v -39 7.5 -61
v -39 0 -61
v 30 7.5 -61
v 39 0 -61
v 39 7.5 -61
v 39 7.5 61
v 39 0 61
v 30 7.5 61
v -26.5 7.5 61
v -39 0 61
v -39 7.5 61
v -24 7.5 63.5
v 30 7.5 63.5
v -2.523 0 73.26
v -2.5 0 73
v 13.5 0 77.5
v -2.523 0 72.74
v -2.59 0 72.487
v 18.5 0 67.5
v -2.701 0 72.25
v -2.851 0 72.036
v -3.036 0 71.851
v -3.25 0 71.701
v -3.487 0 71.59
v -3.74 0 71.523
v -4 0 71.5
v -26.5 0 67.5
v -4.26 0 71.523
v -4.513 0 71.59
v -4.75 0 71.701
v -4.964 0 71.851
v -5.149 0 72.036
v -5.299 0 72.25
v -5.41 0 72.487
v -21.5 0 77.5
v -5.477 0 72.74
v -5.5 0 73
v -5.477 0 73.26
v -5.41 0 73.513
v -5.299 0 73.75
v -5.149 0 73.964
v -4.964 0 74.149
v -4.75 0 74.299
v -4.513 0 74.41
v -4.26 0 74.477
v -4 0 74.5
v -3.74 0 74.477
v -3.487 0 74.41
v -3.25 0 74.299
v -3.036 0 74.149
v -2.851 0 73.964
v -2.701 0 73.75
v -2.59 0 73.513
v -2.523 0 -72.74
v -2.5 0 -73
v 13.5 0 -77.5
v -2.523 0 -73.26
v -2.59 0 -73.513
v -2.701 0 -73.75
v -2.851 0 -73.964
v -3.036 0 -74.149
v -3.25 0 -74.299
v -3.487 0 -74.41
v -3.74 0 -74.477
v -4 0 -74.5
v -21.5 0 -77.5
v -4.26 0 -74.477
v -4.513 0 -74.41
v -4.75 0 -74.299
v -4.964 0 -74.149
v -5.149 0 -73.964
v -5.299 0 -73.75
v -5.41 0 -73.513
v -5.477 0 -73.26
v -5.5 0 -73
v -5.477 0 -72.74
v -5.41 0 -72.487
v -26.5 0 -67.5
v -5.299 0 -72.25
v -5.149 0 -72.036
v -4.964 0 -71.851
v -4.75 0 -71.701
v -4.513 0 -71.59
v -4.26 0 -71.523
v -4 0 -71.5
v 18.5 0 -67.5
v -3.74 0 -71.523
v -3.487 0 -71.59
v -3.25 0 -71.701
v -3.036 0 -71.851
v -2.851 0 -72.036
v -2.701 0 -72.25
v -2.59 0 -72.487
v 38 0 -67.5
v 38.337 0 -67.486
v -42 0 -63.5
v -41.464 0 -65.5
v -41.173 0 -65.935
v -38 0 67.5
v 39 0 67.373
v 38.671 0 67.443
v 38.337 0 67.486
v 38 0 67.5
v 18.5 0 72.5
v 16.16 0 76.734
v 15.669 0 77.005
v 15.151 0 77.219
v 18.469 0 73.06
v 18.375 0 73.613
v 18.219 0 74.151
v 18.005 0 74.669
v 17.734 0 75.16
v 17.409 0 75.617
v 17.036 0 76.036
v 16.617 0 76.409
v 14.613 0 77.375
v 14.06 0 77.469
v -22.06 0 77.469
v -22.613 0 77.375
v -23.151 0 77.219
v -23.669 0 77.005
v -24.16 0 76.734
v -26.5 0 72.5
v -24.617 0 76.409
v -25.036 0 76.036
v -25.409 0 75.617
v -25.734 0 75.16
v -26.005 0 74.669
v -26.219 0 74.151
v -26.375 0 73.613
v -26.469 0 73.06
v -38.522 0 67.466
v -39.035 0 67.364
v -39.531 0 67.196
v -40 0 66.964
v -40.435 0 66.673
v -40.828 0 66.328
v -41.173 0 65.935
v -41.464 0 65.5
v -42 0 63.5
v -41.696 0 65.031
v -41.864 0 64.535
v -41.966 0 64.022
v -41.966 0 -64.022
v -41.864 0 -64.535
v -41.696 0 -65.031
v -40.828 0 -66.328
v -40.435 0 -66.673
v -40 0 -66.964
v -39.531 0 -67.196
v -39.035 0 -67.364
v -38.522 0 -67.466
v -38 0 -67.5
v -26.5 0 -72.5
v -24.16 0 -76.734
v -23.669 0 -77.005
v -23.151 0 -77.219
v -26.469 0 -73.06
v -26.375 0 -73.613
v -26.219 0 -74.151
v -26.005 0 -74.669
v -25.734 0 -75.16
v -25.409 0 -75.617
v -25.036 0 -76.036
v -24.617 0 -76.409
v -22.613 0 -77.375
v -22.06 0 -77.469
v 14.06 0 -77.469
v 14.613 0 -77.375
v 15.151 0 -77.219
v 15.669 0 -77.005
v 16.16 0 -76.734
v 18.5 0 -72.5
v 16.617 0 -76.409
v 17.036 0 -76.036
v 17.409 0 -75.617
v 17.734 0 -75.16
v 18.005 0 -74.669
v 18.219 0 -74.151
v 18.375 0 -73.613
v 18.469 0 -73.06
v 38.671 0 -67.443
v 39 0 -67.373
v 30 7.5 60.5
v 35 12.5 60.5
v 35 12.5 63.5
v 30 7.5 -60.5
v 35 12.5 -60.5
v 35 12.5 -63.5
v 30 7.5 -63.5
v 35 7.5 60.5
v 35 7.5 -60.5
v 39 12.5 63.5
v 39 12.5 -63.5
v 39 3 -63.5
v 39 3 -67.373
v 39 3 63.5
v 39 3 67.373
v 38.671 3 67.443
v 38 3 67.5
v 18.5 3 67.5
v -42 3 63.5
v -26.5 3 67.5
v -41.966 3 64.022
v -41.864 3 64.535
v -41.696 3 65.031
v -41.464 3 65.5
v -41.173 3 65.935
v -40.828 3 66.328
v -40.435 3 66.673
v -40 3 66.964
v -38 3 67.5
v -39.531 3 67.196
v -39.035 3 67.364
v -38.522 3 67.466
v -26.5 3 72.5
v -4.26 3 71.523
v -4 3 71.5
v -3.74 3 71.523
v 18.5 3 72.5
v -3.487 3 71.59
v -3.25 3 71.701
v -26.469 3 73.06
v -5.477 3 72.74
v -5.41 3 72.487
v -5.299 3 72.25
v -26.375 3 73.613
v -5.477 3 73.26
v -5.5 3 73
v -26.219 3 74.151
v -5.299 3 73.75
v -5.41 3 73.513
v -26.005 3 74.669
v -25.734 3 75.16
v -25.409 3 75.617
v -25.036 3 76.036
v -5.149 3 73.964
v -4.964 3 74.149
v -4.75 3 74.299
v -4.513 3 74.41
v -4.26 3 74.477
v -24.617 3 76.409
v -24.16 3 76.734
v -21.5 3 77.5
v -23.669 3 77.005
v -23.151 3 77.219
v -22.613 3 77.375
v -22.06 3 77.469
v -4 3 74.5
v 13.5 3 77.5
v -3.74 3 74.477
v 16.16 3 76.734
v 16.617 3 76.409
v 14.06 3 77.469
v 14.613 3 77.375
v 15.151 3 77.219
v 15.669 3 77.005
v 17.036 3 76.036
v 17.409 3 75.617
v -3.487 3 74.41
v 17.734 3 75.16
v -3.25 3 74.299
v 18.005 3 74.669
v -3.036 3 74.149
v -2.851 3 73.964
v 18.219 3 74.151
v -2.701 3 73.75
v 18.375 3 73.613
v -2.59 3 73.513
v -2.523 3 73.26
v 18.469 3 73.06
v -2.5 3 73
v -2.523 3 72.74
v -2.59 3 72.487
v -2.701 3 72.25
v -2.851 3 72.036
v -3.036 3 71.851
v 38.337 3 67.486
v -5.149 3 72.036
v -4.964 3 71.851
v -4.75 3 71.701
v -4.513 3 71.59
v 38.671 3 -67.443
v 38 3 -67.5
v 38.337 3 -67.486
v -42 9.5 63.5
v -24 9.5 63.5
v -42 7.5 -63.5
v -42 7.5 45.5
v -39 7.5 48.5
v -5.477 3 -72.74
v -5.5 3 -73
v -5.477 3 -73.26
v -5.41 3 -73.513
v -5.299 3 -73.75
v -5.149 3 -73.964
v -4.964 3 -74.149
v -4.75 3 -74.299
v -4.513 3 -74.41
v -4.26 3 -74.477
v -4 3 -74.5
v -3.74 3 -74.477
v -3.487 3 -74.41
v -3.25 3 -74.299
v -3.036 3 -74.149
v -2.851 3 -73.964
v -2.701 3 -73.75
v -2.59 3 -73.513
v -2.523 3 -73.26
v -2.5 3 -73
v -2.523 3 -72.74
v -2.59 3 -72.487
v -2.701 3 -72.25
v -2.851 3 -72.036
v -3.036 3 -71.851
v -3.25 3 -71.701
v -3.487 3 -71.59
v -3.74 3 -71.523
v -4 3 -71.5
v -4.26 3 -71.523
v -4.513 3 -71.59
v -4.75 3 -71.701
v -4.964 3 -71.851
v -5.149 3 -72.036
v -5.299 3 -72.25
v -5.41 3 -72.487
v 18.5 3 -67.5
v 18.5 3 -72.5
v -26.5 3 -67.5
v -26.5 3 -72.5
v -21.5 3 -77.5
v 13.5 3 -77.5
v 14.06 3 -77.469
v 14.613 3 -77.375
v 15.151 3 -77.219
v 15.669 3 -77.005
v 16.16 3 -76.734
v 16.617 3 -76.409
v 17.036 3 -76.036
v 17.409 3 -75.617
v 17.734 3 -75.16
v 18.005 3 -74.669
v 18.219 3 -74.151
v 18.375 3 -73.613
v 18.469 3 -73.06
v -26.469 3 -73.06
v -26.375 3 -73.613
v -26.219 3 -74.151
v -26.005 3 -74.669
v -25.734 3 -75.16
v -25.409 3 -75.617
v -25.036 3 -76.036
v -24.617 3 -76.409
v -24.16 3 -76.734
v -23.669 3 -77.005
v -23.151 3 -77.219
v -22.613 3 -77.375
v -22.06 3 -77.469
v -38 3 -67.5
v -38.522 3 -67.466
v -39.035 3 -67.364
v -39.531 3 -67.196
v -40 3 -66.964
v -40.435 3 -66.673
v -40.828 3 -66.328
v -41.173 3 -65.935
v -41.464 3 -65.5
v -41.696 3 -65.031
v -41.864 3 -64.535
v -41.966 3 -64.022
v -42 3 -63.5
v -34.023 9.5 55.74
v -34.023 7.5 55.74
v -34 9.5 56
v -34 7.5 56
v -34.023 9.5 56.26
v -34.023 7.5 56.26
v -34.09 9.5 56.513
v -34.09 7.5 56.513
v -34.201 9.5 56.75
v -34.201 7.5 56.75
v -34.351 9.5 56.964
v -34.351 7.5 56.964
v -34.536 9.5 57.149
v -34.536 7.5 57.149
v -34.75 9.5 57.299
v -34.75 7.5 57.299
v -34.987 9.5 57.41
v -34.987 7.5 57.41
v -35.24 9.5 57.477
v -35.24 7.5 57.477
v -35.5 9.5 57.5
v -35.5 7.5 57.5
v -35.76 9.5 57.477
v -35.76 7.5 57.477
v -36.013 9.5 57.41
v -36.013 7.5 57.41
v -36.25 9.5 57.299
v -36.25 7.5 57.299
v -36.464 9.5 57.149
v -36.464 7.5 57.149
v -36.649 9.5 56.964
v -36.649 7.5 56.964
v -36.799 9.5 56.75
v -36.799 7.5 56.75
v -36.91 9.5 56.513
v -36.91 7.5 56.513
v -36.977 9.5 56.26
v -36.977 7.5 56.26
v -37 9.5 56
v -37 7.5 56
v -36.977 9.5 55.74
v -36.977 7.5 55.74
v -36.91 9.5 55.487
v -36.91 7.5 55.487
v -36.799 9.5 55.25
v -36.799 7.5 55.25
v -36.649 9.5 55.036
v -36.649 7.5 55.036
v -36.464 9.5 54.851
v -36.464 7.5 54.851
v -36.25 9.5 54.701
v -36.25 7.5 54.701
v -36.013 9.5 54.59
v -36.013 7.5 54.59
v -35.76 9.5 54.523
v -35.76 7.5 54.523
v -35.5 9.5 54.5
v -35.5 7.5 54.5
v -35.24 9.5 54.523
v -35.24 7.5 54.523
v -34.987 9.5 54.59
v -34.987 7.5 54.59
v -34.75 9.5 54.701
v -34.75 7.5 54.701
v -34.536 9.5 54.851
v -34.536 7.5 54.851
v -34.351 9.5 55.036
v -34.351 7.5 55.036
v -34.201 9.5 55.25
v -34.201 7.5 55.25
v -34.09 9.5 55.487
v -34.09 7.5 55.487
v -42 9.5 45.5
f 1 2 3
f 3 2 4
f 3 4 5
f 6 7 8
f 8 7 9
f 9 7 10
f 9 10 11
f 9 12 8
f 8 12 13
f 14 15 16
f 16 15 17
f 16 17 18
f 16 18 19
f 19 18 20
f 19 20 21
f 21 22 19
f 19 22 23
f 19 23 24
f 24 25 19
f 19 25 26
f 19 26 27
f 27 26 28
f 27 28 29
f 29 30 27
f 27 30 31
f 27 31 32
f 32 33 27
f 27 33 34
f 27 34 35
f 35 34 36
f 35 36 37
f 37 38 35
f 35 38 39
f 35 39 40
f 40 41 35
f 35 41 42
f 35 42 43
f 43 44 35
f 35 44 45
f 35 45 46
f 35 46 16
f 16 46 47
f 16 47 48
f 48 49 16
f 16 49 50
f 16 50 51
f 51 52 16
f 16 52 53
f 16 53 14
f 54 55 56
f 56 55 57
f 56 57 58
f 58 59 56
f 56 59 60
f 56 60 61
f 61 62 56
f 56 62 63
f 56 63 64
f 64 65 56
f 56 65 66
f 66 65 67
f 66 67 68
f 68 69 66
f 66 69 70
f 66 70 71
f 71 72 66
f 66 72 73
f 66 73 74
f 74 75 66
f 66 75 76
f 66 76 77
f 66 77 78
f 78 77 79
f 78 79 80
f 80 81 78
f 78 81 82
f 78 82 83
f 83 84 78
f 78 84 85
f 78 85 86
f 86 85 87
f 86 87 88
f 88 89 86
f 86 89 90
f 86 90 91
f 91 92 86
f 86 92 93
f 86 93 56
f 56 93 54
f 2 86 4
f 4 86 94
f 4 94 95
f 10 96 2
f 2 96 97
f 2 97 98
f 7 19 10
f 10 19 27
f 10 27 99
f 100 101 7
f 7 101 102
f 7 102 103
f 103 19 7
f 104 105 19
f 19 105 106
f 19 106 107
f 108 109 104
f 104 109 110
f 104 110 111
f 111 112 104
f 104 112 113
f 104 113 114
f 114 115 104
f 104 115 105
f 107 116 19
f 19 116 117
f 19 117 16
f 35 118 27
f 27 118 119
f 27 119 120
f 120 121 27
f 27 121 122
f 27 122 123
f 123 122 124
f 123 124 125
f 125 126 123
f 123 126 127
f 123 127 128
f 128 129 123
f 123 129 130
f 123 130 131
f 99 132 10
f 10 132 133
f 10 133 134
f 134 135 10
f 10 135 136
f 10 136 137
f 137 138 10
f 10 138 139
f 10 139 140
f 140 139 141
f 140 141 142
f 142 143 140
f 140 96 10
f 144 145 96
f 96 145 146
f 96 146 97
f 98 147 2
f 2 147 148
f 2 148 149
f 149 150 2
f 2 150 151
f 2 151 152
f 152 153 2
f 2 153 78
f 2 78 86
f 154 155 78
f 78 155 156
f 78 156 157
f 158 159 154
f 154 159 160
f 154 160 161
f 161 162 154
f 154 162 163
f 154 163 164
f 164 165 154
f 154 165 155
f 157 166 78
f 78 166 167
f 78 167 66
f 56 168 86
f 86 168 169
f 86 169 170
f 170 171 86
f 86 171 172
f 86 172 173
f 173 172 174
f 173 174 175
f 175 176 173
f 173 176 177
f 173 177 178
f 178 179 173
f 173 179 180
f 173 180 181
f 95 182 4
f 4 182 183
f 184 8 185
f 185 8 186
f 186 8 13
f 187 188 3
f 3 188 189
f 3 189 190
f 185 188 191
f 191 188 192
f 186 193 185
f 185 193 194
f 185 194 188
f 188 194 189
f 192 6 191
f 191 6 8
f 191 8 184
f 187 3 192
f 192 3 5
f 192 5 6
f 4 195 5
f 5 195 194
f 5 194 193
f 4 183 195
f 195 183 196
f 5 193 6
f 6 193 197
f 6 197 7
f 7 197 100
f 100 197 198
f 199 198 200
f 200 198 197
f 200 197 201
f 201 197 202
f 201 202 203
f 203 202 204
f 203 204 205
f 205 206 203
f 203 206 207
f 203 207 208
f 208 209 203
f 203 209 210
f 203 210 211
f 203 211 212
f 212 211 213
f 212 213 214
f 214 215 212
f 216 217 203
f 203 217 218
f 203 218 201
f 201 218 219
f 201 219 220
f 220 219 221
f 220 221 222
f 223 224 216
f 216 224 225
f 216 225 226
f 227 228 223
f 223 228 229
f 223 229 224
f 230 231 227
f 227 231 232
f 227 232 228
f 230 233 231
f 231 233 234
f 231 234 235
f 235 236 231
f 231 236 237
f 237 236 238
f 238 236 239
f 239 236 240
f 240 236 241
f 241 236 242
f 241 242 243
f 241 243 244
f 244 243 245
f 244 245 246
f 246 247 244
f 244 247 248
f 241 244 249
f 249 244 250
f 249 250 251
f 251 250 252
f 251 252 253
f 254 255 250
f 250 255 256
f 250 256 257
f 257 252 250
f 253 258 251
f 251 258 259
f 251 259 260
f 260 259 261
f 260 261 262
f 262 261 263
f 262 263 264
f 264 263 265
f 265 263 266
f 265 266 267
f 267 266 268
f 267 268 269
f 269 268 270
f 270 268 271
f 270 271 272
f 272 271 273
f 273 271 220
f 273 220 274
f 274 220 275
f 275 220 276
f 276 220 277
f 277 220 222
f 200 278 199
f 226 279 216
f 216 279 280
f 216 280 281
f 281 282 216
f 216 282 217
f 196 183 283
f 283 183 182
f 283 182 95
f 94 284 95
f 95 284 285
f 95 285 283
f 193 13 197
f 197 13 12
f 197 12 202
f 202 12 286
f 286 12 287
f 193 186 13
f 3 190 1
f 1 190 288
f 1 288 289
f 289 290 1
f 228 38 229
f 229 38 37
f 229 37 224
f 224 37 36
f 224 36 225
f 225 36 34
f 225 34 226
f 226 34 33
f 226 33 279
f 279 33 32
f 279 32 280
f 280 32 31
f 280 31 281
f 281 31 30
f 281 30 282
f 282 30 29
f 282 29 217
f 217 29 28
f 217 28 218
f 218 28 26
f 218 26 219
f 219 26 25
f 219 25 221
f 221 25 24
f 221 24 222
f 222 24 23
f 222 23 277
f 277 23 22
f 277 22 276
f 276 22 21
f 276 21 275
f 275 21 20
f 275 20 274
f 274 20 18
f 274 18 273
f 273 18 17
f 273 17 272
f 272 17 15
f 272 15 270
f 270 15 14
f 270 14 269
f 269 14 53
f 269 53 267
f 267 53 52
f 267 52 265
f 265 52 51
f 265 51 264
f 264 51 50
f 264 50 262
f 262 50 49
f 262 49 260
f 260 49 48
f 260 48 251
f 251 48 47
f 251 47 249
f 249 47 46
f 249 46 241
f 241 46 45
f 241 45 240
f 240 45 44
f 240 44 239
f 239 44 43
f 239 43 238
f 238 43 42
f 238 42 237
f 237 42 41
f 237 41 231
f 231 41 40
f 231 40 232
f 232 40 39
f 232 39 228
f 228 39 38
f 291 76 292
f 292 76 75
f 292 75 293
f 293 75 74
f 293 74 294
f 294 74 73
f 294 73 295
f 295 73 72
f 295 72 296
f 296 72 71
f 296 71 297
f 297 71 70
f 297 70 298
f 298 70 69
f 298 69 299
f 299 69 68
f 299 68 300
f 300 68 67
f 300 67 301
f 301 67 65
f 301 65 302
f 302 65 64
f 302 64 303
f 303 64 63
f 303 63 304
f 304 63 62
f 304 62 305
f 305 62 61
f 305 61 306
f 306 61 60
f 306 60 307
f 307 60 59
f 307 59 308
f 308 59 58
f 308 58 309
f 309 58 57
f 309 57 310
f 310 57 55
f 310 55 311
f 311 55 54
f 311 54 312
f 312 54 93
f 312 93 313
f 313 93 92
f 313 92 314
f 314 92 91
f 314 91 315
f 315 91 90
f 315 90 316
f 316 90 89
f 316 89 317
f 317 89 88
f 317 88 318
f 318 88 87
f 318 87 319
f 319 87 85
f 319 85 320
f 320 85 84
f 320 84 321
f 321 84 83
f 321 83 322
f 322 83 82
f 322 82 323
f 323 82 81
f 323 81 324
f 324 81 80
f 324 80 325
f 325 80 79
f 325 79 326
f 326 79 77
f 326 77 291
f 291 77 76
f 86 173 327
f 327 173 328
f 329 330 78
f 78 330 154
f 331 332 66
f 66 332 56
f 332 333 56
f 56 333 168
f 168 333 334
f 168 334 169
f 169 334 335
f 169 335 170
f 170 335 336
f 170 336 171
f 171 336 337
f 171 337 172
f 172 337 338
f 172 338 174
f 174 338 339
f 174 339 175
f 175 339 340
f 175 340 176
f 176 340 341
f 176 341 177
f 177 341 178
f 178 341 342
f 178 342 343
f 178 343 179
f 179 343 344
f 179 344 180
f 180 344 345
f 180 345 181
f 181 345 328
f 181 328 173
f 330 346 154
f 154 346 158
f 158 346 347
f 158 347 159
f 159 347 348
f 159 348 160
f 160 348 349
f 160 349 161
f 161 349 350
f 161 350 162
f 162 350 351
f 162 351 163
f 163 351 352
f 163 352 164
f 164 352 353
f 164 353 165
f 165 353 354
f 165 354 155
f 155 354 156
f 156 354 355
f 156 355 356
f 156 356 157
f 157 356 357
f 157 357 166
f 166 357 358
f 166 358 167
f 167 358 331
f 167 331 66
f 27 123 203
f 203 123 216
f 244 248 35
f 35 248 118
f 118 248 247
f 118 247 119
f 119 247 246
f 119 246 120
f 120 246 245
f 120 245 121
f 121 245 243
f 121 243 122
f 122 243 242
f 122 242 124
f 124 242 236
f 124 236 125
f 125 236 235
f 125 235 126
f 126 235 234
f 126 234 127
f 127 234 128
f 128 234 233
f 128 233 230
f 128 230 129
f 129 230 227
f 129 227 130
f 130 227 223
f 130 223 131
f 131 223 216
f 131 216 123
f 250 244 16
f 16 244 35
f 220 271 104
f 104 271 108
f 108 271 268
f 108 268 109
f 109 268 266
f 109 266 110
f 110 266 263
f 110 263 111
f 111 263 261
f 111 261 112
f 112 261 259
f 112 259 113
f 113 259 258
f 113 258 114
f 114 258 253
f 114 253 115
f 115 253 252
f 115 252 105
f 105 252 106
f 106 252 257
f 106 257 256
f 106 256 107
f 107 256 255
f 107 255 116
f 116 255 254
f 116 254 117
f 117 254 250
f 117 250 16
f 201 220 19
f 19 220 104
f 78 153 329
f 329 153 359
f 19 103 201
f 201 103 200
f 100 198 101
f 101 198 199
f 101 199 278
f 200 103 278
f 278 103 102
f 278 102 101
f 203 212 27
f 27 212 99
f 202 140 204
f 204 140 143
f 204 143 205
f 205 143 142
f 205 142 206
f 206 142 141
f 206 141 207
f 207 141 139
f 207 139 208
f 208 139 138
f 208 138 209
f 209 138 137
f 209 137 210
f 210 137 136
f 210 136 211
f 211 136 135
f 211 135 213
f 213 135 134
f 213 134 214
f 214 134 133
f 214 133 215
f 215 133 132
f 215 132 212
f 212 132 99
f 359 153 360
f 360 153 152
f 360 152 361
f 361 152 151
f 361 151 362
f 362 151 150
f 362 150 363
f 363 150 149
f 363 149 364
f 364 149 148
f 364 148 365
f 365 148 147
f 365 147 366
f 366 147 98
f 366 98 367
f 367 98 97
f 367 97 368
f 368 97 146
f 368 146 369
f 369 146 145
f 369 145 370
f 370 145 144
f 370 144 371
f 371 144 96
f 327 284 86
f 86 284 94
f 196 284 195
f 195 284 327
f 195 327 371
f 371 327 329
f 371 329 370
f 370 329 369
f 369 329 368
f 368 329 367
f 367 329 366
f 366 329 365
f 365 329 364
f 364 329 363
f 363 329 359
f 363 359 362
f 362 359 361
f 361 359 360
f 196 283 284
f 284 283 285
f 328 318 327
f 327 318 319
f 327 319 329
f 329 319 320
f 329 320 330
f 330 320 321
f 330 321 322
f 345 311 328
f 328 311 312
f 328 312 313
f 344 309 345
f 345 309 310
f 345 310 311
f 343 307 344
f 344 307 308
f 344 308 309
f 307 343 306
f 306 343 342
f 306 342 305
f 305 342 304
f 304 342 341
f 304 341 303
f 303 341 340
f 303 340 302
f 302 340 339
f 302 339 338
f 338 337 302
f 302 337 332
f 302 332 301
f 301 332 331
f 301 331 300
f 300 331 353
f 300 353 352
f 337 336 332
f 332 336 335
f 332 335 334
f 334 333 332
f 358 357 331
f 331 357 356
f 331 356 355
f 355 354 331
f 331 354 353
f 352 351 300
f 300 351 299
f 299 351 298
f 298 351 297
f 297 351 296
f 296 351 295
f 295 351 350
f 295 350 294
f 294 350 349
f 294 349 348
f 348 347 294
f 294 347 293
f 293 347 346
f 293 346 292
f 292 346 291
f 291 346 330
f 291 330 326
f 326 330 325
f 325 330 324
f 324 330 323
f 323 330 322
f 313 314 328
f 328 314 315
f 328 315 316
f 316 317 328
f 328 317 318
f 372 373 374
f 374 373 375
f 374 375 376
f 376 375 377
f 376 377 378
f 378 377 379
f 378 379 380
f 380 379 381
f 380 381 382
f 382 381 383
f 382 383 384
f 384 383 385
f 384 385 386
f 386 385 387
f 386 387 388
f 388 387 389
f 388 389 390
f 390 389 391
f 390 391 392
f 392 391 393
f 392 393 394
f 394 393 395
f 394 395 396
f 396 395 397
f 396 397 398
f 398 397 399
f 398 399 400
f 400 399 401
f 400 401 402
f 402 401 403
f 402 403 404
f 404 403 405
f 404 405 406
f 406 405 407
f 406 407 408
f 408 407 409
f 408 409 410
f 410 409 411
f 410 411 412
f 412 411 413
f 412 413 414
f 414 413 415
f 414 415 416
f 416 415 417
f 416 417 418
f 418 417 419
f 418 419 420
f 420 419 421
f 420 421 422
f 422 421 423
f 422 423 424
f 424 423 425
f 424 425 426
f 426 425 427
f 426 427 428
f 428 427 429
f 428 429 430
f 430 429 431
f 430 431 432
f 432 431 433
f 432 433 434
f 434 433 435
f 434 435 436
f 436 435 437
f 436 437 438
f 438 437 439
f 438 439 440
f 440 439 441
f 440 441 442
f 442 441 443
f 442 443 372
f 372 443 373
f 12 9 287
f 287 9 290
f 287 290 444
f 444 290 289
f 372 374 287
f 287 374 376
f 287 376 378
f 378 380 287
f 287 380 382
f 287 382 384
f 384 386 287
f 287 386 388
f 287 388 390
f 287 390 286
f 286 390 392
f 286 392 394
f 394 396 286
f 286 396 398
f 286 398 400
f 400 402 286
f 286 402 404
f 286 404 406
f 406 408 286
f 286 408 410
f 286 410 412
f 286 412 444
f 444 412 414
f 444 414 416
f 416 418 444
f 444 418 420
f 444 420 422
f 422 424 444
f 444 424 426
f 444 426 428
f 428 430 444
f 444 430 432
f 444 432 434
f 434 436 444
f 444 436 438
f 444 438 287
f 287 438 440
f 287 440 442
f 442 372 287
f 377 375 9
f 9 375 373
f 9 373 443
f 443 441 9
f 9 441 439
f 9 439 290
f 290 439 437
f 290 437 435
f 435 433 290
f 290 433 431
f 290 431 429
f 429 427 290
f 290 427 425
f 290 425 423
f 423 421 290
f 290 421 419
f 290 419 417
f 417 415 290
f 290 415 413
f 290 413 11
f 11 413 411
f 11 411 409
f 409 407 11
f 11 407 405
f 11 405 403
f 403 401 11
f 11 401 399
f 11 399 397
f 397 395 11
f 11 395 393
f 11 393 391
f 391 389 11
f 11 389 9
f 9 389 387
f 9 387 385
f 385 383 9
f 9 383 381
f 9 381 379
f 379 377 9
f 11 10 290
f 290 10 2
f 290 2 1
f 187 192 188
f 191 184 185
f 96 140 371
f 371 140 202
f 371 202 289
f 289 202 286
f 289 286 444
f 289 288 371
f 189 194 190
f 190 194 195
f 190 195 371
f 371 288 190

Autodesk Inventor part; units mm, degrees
ref_plane "YZ Plane" through (0, 0, 0) normal (1, 0, 0) x (0, 1, 0)
ref_plane "XZ Plane" through (0, 0, 0) normal (0, 1, 0) x (-1, 0, 0)
ref_plane "XY Plane" through (0, 0, 0) normal (0, 0, 1) x (1, 0, 0)
sketch "Skizze1" plane through (0, 0, 0) normal (0, 1, 0) x (-1, 0, 0)
  line L0 (-39, 60.5) -> (39, 60.5)
  line L1 (39, 60.5) -> (39, -60.5)
  line L2 (39, -60.5) -> (-39, -60.5)
  line L3 (-39, -60.5) -> (-39, 60.5)
  line L4 (-39, 60.5) -> (39, -60.5) construction
  line L5 (39, 60.5) -> (-39, -60.5) construction
  line L6 (42, 63.5) -> (-42, 63.5)
  line L7 (-42, 63.5) -> (-42, -63.5)
  line L8 (-42, -63.5) -> (42, -63.5)
  line L9 (42, -63.5) -> (42, 63.5)
  point P0 (0, 0)
  dimension "d0" = 78
  dimension "d1" = 121
  dimension "d2" = 3
extrude "Extrusion1" add sketch "Skizze1" along normal blind 7.5
sketch "Skizze2" plane through (0, 7.5, 0) normal (0, 1, 0) x (1, 0, 0)
  line L0 (39, -60.5) -> (-39, -60.5) projected
  line L1 (-39, -60.5) -> (-39, 60.5) projected
  circle A0 centre (-35.5, -56) radius 1.5
  point P0 (0, 0)
  dimension "d5" = 4.5
  dimension "d6" = 3.5
  dimension "d12" = 3
sketch "Skizze3" plane through (0, 7.5, 0) normal (0, 1, 0) x (1, 0, 0)
  line L0 (-42, -63.5) -> (42, -63.5) projected
  line L1 (-42, -63.5) -> (-24, -63.5)
  line L2 (-42, -63.5) -> (-42, -45.5)
  line L3 (-42, 63.5) -> (-42, -63.5) projected
  line L4 (-42, -45.5) -> (-24, -63.5)
  point P0 (0, 0)
  dimension "d7" = 18
  dimension "d9" = 18
extrude "Extrusion2" add sketch "Skizze3" along normal blind 2
extrude "Extrusion3" cut sketch "Skizze2" along normal through all
ref_plane "Arbeitsebene1" through (0, 0, -60.5) normal (1, 0, 0) x (0, 0, -1)
ref_plane "Arbeitsebene2" through (39, 0, 0) normal (0, 0, -1) x (-1, 0, 0)
sketch "Skizze4" plane through (0, 0, 0) normal (0, -1, 0) x (1, 0, 0)
  line L0 (-39, -60.5) -> (-39, 60.5) projected
  line L1 (-39, 60.5) -> (39, 60.5) projected
  line L2 (39, 60.5) -> (39, -60.5) projected
  line L3 (39, -60.5) -> (-39, -60.5) projected
  line L4 (-42, 63.5) -> (42, 63.5) projected
  line L5 (-42, -63.5) -> (-42, 63.5) projected
  line L6 (42, -63.5) -> (-42, -63.5) projected
  line L7 (42, 63.5) -> (42, -63.5) projected
  line L8 (-42, 63.5) -> (42, 63.5) projected
  line L9 (-58.8, 0) -> (58.8, 0) construction
  line L10 (18.5, 63.5) -> (18.5, 72.5)
  line L11 (13.5, 77.5) -> (-21.5, 77.5)
  line L12 (-26.5, 72.5) -> (-26.5, 63.5)
  line L13 (42, 63.5) -> (42, 63.5)
  line L14 (38, 67.5) -> (-38, 67.5)
  line L15 (-42, 63.5) -> (-42, 63.5)
  line L16 (42, -63.5) -> (42, -63.5)
  line L17 (38, -67.5) -> (-38, -67.5)
  line L18 (-42, -63.5) -> (-42, -63.5)
  arc A0 (42, 63.5) -> (38, 67.5) centre (38, 63.5) ccw
  arc A1 (-38, 67.5) -> (-42, 63.5) centre (-38, 63.5) ccw
  arc A2 (-42, -63.5) -> (-38, -67.5) centre (-38, -63.5) ccw
  arc A3 (38, -67.5) -> (42, -63.5) centre (38, -63.5) ccw
  arc A4 (18.5, 72.5) -> (13.5, 77.5) centre (13.5, 72.5) ccw
  arc A5 (-21.5, 77.5) -> (-26.5, 72.5) centre (-21.5, 72.5) ccw
  line L19 (18.5, -63.5) -> (18.5, -72.5)
  line L20 (13.5, -77.5) -> (-21.5, -77.5)
  line L21 (-26.5, -72.5) -> (-26.5, -63.5)
  arc A6 (13.5, -77.5) -> (18.5, -72.5) centre (13.5, -72.5) ccw
  arc A7 (-26.5, -72.5) -> (-21.5, -77.5) centre (-21.5, -72.5) ccw
  line L22 (18.5, -63.5) -> (-26.5, -63.5)
  line L23 (42, -63.5) -> (-42, -63.5) projected
  line L24 (0, -109.9497) -> (0, 109.9497) construction
  point P0 (0, 0)
  point P1 (18.5, 77.5)
  point P2 (-26.5, 77.5)
  point P3 (-4, 77.5)
  point P4 (42, 67.5)
  point P5 (-42, 67.5)
  point P6 (42, -67.5)
  point P7 (-42, -67.5)
  point P8 (18.5, -77.5)
  point P9 (-26.5, -77.5)
  point P10 (-4, -77.5)
  point P11 (-4, 73)
  point P12 (-4, -73)
  dimension "d20" = 155
  dimension "d21" = 45
  dimension "d22" = 4
  dimension "d23" = 135
  dimension "d24" = 4
  dimension "d25" = 4
  dimension "d26" = 4
  dimension "d27" = 4
  dimension "d30" = 5
  dimension "d33" = 5.5
extrude "Extrusion4" add sketch "Skizze4" against normal blind 3 contours A1 L14 L12 L4 | L12 L14 L10 L4 | L6 L21 L17 A2 | L10 L14 A0 L4 | L6 L19 L17 L21 | L6 A3 L17 L19
extrude "Extrusion5" add sketch "Skizze4" against normal up to surface (3 mm away) contours L12 L14 L10 L4 | L12 A5 L11 A4 L10 L14 | L6 L19 L17 L21 | L17 L19 A6 L20 A7 L21
hole "Bohrung1" at (-4, 0, 73) at (-4, 0, -73) direction (0, 1, 0) diameter 3 end through all
sketch "Skizze6" plane through (42, 7.5, 63.5) normal (1, 0, 0) x (0, 0, -1)
  line L0 (0, -7.5) -> (127, -7.5) projected
  line L1 (127, -7.5) -> (127, -4.5) projected
  line L2 (127, -4.5) -> (127, 0) projected
  line L3 (0, 0) -> (127, 0) projected
  line L4 (0, -4.5) -> (0, 0) projected
  line L5 (0, -7.5) -> (0, -4.5) projected
  line L6 (131, -7.5) -> (127, -7.5) projected
  line L7 (131, -7.5) -> (131, -4.5) projected
  line L8 (127, -4.5) -> (131, -4.5) projected
  line L9 (127, -7.5) -> (127, -4.5) projected
  line L10 (0, -7.5) -> (-4, -7.5) projected
  line L11 (0, -7.5) -> (0, -4.5) projected
  line L12 (-4, -4.5) -> (0, -4.5) projected
  line L13 (-4, -7.5) -> (-4, -4.5) projected
  point P0 (63.5, -7.5)
extrude "Extrusion8" cut sketch "Skizze6" against normal up to surface (3 mm away)
sketch "Skizze7" plane through (0, 7.5, 0) normal (0, 1, 0) x (1, 0, 0)
  line L0 (39, -63.5) -> (39, -60.5) projected
  line L1 (39, -60.5) -> (-27, -60.5) projected
  line L2 (-27, -60.5) -> (-24, -63.5) projected
  line L3 (-24, -63.5) -> (39, -63.5) projected
  line L4 (39, 60.5) -> (39, 63.5) projected
  line L5 (39, 63.5) -> (-42, 63.5) projected
  line L6 (-42, 63.5) -> (-42, -45.5) projected
  line L7 (-42, -45.5) -> (-39, -48.5) projected
  line L8 (-39, -48.5) -> (-39, 60.5) projected
  line L9 (-39, 60.5) -> (39, 60.5) projected
  line L10 (39, -63.5) -> (39, 63.5)
  line L11 (39, 63.5) -> (-42, 63.5) projected
  line L12 (39, 63.5) -> (35, 63.5)
  line L13 (35, 63.5) -> (35, -63.5)
  line L14 (-42, -63.5) -> (39, -63.5) projected
  line L15 (35, -63.5) -> (39, -63.5)
  point P0 (0, 0)
  dimension "d48" = 4
extrude "Extrusion9" add sketch "Skizze7" along normal blind 5 contours L3 L13 L1 L0 | L1 L13 L9 L10 | L9 L13 L5 L4
sketch "Skizze8" plane through (-42, 3, -63.5) normal (0, 0, -1) x (-1, 0, 0)
  line L0 (-81, 9.5) -> (-81, 0) projected
  line L1 (-81, 0) -> (0, 0) projected
  line L2 (0, 0) -> (0, 4.5) projected
  line L3 (-77, 4.5) -> (0, 4.5) projected
  line L4 (-77, 4.5) -> (-77, 9.5) projected
  line L5 (-81, 9.5) -> (-77, 9.5) projected
  line L6 (-77, 4.5) -> (-77, 9.5) projected
  line L7 (-77, 9.5) -> (-72, 4.5)
  line L8 (-77, 4.5) -> (-15, 4.5) projected
  line L9 (-77, 9.5) -> (-69.9289, 9.5) construction
  line L10 (-72, 4.5) -> (-77, 4.5)
  line L11 (-77, 4.5) -> (-77, 9.5)
  point P0 (-42, -3)
  dimension "d51" = 45
extrude "Extrusion10" add sketch "Skizze8" against normal up to surface (3 mm away) contours L7 L3 L4
sketch "Skizze9" plane through (-42, 9.5, 63.5) normal (0, 0, 1) x (1, 0, 0)
  line L0 (81, -9.5) -> (3, -9.5) projected
  line L1 (81, -9.5) -> (81, -2) projected
  line L2 (77, -2) -> (81, -2) projected
  line L3 (77, 3) -> (77, -2) projected
  line L4 (77, 3) -> (72, -2) projected
  line L5 (3, -2) -> (72, -2) projected
  line L6 (3, -9.5) -> (3, -2) projected
  line L7 (18, -2) -> (77, -2) projected
  line L8 (72, -2) -> (77, -2)
  point P0 (42, -9.5)
extrude "Extrusion11" add sketch "Skizze9" against normal up to surface (3 mm away) contours L7 L4 L3
sketch "Skizze10" plane through (0, 0, 0) normal (0, -1, 0) x (1, 0, 0)
  line L0 (39, -67.373) -> (39, -60.5) projected
  line L1 (39, -60.5) -> (-39, -60.5) projected
  line L2 (-39, -60.5) -> (-39, 60.5) projected
  line L3 (-39, 60.5) -> (39, 60.5) projected
  line L4 (39, 60.5) -> (39, 67.373) projected
  arc A0 (39, 67.373) -> (38, 67.5) centre (38, 63.5) ccw projected
  line L5 (38, 67.5) -> (18.5, 67.5) projected
  line L6 (18.5, 67.5) -> (18.5, 72.5) projected
  arc A1 (18.5, 72.5) -> (13.5, 77.5) centre (13.5, 72.5) ccw projected
  line L7 (13.5, 77.5) -> (-21.5, 77.5) projected
  arc A2 (-21.5, 77.5) -> (-26.5, 72.5) centre (-21.5, 72.5) ccw projected
  line L8 (-26.5, 72.5) -> (-26.5, 67.5) projected
  line L9 (-26.5, 67.5) -> (-38, 67.5) projected
  arc A3 (-38, 67.5) -> (-42, 63.5) centre (-38, 63.5) ccw projected
  line L10 (-42, -63.5) -> (-42, 63.5) projected
  arc A4 (-42, -63.5) -> (-38, -67.5) centre (-38, -63.5) ccw projected
  line L11 (-38, -67.5) -> (-26.5, -67.5) projected
  line L12 (-26.5, -67.5) -> (-26.5, -72.5) projected
  arc A5 (-26.5, -72.5) -> (-21.5, -77.5) centre (-21.5, -72.5) ccw projected
  line L13 (-21.5, -77.5) -> (13.5, -77.5) projected
  arc A6 (13.5, -77.5) -> (18.5, -72.5) centre (13.5, -72.5) ccw projected
  line L14 (18.5, -72.5) -> (18.5, -67.5) projected
  line L15 (18.5, -67.5) -> (38, -67.5) projected
  arc A7 (38, -67.5) -> (39, -67.373) centre (38, -63.5) ccw projected
  circle A8 centre (-4, -73) radius 1.5 projected
  circle A9 centre (-4, 73) radius 1.5 projected
  line L16 (39, 61) -> (-39, 61)
  line L17 (-39, -60.5) -> (-39, 60.5) projected
  line L18 (-39, 60.5) -> (-39, 61)
  line L19 (39, -61) -> (-39, -61)
  line L20 (-39, -61) -> (-39, -60.5)
  point P0 (0, 0)
  dimension "d56" = 0.5
  dimension "d57" = 0.5
extrude "Extrusion12" cut sketch "Skizze10" against normal up to surface (7.5 mm away) contours L19 L20 L1 L0 | L18 L16 L4 L3
properties part number "display_mount"
